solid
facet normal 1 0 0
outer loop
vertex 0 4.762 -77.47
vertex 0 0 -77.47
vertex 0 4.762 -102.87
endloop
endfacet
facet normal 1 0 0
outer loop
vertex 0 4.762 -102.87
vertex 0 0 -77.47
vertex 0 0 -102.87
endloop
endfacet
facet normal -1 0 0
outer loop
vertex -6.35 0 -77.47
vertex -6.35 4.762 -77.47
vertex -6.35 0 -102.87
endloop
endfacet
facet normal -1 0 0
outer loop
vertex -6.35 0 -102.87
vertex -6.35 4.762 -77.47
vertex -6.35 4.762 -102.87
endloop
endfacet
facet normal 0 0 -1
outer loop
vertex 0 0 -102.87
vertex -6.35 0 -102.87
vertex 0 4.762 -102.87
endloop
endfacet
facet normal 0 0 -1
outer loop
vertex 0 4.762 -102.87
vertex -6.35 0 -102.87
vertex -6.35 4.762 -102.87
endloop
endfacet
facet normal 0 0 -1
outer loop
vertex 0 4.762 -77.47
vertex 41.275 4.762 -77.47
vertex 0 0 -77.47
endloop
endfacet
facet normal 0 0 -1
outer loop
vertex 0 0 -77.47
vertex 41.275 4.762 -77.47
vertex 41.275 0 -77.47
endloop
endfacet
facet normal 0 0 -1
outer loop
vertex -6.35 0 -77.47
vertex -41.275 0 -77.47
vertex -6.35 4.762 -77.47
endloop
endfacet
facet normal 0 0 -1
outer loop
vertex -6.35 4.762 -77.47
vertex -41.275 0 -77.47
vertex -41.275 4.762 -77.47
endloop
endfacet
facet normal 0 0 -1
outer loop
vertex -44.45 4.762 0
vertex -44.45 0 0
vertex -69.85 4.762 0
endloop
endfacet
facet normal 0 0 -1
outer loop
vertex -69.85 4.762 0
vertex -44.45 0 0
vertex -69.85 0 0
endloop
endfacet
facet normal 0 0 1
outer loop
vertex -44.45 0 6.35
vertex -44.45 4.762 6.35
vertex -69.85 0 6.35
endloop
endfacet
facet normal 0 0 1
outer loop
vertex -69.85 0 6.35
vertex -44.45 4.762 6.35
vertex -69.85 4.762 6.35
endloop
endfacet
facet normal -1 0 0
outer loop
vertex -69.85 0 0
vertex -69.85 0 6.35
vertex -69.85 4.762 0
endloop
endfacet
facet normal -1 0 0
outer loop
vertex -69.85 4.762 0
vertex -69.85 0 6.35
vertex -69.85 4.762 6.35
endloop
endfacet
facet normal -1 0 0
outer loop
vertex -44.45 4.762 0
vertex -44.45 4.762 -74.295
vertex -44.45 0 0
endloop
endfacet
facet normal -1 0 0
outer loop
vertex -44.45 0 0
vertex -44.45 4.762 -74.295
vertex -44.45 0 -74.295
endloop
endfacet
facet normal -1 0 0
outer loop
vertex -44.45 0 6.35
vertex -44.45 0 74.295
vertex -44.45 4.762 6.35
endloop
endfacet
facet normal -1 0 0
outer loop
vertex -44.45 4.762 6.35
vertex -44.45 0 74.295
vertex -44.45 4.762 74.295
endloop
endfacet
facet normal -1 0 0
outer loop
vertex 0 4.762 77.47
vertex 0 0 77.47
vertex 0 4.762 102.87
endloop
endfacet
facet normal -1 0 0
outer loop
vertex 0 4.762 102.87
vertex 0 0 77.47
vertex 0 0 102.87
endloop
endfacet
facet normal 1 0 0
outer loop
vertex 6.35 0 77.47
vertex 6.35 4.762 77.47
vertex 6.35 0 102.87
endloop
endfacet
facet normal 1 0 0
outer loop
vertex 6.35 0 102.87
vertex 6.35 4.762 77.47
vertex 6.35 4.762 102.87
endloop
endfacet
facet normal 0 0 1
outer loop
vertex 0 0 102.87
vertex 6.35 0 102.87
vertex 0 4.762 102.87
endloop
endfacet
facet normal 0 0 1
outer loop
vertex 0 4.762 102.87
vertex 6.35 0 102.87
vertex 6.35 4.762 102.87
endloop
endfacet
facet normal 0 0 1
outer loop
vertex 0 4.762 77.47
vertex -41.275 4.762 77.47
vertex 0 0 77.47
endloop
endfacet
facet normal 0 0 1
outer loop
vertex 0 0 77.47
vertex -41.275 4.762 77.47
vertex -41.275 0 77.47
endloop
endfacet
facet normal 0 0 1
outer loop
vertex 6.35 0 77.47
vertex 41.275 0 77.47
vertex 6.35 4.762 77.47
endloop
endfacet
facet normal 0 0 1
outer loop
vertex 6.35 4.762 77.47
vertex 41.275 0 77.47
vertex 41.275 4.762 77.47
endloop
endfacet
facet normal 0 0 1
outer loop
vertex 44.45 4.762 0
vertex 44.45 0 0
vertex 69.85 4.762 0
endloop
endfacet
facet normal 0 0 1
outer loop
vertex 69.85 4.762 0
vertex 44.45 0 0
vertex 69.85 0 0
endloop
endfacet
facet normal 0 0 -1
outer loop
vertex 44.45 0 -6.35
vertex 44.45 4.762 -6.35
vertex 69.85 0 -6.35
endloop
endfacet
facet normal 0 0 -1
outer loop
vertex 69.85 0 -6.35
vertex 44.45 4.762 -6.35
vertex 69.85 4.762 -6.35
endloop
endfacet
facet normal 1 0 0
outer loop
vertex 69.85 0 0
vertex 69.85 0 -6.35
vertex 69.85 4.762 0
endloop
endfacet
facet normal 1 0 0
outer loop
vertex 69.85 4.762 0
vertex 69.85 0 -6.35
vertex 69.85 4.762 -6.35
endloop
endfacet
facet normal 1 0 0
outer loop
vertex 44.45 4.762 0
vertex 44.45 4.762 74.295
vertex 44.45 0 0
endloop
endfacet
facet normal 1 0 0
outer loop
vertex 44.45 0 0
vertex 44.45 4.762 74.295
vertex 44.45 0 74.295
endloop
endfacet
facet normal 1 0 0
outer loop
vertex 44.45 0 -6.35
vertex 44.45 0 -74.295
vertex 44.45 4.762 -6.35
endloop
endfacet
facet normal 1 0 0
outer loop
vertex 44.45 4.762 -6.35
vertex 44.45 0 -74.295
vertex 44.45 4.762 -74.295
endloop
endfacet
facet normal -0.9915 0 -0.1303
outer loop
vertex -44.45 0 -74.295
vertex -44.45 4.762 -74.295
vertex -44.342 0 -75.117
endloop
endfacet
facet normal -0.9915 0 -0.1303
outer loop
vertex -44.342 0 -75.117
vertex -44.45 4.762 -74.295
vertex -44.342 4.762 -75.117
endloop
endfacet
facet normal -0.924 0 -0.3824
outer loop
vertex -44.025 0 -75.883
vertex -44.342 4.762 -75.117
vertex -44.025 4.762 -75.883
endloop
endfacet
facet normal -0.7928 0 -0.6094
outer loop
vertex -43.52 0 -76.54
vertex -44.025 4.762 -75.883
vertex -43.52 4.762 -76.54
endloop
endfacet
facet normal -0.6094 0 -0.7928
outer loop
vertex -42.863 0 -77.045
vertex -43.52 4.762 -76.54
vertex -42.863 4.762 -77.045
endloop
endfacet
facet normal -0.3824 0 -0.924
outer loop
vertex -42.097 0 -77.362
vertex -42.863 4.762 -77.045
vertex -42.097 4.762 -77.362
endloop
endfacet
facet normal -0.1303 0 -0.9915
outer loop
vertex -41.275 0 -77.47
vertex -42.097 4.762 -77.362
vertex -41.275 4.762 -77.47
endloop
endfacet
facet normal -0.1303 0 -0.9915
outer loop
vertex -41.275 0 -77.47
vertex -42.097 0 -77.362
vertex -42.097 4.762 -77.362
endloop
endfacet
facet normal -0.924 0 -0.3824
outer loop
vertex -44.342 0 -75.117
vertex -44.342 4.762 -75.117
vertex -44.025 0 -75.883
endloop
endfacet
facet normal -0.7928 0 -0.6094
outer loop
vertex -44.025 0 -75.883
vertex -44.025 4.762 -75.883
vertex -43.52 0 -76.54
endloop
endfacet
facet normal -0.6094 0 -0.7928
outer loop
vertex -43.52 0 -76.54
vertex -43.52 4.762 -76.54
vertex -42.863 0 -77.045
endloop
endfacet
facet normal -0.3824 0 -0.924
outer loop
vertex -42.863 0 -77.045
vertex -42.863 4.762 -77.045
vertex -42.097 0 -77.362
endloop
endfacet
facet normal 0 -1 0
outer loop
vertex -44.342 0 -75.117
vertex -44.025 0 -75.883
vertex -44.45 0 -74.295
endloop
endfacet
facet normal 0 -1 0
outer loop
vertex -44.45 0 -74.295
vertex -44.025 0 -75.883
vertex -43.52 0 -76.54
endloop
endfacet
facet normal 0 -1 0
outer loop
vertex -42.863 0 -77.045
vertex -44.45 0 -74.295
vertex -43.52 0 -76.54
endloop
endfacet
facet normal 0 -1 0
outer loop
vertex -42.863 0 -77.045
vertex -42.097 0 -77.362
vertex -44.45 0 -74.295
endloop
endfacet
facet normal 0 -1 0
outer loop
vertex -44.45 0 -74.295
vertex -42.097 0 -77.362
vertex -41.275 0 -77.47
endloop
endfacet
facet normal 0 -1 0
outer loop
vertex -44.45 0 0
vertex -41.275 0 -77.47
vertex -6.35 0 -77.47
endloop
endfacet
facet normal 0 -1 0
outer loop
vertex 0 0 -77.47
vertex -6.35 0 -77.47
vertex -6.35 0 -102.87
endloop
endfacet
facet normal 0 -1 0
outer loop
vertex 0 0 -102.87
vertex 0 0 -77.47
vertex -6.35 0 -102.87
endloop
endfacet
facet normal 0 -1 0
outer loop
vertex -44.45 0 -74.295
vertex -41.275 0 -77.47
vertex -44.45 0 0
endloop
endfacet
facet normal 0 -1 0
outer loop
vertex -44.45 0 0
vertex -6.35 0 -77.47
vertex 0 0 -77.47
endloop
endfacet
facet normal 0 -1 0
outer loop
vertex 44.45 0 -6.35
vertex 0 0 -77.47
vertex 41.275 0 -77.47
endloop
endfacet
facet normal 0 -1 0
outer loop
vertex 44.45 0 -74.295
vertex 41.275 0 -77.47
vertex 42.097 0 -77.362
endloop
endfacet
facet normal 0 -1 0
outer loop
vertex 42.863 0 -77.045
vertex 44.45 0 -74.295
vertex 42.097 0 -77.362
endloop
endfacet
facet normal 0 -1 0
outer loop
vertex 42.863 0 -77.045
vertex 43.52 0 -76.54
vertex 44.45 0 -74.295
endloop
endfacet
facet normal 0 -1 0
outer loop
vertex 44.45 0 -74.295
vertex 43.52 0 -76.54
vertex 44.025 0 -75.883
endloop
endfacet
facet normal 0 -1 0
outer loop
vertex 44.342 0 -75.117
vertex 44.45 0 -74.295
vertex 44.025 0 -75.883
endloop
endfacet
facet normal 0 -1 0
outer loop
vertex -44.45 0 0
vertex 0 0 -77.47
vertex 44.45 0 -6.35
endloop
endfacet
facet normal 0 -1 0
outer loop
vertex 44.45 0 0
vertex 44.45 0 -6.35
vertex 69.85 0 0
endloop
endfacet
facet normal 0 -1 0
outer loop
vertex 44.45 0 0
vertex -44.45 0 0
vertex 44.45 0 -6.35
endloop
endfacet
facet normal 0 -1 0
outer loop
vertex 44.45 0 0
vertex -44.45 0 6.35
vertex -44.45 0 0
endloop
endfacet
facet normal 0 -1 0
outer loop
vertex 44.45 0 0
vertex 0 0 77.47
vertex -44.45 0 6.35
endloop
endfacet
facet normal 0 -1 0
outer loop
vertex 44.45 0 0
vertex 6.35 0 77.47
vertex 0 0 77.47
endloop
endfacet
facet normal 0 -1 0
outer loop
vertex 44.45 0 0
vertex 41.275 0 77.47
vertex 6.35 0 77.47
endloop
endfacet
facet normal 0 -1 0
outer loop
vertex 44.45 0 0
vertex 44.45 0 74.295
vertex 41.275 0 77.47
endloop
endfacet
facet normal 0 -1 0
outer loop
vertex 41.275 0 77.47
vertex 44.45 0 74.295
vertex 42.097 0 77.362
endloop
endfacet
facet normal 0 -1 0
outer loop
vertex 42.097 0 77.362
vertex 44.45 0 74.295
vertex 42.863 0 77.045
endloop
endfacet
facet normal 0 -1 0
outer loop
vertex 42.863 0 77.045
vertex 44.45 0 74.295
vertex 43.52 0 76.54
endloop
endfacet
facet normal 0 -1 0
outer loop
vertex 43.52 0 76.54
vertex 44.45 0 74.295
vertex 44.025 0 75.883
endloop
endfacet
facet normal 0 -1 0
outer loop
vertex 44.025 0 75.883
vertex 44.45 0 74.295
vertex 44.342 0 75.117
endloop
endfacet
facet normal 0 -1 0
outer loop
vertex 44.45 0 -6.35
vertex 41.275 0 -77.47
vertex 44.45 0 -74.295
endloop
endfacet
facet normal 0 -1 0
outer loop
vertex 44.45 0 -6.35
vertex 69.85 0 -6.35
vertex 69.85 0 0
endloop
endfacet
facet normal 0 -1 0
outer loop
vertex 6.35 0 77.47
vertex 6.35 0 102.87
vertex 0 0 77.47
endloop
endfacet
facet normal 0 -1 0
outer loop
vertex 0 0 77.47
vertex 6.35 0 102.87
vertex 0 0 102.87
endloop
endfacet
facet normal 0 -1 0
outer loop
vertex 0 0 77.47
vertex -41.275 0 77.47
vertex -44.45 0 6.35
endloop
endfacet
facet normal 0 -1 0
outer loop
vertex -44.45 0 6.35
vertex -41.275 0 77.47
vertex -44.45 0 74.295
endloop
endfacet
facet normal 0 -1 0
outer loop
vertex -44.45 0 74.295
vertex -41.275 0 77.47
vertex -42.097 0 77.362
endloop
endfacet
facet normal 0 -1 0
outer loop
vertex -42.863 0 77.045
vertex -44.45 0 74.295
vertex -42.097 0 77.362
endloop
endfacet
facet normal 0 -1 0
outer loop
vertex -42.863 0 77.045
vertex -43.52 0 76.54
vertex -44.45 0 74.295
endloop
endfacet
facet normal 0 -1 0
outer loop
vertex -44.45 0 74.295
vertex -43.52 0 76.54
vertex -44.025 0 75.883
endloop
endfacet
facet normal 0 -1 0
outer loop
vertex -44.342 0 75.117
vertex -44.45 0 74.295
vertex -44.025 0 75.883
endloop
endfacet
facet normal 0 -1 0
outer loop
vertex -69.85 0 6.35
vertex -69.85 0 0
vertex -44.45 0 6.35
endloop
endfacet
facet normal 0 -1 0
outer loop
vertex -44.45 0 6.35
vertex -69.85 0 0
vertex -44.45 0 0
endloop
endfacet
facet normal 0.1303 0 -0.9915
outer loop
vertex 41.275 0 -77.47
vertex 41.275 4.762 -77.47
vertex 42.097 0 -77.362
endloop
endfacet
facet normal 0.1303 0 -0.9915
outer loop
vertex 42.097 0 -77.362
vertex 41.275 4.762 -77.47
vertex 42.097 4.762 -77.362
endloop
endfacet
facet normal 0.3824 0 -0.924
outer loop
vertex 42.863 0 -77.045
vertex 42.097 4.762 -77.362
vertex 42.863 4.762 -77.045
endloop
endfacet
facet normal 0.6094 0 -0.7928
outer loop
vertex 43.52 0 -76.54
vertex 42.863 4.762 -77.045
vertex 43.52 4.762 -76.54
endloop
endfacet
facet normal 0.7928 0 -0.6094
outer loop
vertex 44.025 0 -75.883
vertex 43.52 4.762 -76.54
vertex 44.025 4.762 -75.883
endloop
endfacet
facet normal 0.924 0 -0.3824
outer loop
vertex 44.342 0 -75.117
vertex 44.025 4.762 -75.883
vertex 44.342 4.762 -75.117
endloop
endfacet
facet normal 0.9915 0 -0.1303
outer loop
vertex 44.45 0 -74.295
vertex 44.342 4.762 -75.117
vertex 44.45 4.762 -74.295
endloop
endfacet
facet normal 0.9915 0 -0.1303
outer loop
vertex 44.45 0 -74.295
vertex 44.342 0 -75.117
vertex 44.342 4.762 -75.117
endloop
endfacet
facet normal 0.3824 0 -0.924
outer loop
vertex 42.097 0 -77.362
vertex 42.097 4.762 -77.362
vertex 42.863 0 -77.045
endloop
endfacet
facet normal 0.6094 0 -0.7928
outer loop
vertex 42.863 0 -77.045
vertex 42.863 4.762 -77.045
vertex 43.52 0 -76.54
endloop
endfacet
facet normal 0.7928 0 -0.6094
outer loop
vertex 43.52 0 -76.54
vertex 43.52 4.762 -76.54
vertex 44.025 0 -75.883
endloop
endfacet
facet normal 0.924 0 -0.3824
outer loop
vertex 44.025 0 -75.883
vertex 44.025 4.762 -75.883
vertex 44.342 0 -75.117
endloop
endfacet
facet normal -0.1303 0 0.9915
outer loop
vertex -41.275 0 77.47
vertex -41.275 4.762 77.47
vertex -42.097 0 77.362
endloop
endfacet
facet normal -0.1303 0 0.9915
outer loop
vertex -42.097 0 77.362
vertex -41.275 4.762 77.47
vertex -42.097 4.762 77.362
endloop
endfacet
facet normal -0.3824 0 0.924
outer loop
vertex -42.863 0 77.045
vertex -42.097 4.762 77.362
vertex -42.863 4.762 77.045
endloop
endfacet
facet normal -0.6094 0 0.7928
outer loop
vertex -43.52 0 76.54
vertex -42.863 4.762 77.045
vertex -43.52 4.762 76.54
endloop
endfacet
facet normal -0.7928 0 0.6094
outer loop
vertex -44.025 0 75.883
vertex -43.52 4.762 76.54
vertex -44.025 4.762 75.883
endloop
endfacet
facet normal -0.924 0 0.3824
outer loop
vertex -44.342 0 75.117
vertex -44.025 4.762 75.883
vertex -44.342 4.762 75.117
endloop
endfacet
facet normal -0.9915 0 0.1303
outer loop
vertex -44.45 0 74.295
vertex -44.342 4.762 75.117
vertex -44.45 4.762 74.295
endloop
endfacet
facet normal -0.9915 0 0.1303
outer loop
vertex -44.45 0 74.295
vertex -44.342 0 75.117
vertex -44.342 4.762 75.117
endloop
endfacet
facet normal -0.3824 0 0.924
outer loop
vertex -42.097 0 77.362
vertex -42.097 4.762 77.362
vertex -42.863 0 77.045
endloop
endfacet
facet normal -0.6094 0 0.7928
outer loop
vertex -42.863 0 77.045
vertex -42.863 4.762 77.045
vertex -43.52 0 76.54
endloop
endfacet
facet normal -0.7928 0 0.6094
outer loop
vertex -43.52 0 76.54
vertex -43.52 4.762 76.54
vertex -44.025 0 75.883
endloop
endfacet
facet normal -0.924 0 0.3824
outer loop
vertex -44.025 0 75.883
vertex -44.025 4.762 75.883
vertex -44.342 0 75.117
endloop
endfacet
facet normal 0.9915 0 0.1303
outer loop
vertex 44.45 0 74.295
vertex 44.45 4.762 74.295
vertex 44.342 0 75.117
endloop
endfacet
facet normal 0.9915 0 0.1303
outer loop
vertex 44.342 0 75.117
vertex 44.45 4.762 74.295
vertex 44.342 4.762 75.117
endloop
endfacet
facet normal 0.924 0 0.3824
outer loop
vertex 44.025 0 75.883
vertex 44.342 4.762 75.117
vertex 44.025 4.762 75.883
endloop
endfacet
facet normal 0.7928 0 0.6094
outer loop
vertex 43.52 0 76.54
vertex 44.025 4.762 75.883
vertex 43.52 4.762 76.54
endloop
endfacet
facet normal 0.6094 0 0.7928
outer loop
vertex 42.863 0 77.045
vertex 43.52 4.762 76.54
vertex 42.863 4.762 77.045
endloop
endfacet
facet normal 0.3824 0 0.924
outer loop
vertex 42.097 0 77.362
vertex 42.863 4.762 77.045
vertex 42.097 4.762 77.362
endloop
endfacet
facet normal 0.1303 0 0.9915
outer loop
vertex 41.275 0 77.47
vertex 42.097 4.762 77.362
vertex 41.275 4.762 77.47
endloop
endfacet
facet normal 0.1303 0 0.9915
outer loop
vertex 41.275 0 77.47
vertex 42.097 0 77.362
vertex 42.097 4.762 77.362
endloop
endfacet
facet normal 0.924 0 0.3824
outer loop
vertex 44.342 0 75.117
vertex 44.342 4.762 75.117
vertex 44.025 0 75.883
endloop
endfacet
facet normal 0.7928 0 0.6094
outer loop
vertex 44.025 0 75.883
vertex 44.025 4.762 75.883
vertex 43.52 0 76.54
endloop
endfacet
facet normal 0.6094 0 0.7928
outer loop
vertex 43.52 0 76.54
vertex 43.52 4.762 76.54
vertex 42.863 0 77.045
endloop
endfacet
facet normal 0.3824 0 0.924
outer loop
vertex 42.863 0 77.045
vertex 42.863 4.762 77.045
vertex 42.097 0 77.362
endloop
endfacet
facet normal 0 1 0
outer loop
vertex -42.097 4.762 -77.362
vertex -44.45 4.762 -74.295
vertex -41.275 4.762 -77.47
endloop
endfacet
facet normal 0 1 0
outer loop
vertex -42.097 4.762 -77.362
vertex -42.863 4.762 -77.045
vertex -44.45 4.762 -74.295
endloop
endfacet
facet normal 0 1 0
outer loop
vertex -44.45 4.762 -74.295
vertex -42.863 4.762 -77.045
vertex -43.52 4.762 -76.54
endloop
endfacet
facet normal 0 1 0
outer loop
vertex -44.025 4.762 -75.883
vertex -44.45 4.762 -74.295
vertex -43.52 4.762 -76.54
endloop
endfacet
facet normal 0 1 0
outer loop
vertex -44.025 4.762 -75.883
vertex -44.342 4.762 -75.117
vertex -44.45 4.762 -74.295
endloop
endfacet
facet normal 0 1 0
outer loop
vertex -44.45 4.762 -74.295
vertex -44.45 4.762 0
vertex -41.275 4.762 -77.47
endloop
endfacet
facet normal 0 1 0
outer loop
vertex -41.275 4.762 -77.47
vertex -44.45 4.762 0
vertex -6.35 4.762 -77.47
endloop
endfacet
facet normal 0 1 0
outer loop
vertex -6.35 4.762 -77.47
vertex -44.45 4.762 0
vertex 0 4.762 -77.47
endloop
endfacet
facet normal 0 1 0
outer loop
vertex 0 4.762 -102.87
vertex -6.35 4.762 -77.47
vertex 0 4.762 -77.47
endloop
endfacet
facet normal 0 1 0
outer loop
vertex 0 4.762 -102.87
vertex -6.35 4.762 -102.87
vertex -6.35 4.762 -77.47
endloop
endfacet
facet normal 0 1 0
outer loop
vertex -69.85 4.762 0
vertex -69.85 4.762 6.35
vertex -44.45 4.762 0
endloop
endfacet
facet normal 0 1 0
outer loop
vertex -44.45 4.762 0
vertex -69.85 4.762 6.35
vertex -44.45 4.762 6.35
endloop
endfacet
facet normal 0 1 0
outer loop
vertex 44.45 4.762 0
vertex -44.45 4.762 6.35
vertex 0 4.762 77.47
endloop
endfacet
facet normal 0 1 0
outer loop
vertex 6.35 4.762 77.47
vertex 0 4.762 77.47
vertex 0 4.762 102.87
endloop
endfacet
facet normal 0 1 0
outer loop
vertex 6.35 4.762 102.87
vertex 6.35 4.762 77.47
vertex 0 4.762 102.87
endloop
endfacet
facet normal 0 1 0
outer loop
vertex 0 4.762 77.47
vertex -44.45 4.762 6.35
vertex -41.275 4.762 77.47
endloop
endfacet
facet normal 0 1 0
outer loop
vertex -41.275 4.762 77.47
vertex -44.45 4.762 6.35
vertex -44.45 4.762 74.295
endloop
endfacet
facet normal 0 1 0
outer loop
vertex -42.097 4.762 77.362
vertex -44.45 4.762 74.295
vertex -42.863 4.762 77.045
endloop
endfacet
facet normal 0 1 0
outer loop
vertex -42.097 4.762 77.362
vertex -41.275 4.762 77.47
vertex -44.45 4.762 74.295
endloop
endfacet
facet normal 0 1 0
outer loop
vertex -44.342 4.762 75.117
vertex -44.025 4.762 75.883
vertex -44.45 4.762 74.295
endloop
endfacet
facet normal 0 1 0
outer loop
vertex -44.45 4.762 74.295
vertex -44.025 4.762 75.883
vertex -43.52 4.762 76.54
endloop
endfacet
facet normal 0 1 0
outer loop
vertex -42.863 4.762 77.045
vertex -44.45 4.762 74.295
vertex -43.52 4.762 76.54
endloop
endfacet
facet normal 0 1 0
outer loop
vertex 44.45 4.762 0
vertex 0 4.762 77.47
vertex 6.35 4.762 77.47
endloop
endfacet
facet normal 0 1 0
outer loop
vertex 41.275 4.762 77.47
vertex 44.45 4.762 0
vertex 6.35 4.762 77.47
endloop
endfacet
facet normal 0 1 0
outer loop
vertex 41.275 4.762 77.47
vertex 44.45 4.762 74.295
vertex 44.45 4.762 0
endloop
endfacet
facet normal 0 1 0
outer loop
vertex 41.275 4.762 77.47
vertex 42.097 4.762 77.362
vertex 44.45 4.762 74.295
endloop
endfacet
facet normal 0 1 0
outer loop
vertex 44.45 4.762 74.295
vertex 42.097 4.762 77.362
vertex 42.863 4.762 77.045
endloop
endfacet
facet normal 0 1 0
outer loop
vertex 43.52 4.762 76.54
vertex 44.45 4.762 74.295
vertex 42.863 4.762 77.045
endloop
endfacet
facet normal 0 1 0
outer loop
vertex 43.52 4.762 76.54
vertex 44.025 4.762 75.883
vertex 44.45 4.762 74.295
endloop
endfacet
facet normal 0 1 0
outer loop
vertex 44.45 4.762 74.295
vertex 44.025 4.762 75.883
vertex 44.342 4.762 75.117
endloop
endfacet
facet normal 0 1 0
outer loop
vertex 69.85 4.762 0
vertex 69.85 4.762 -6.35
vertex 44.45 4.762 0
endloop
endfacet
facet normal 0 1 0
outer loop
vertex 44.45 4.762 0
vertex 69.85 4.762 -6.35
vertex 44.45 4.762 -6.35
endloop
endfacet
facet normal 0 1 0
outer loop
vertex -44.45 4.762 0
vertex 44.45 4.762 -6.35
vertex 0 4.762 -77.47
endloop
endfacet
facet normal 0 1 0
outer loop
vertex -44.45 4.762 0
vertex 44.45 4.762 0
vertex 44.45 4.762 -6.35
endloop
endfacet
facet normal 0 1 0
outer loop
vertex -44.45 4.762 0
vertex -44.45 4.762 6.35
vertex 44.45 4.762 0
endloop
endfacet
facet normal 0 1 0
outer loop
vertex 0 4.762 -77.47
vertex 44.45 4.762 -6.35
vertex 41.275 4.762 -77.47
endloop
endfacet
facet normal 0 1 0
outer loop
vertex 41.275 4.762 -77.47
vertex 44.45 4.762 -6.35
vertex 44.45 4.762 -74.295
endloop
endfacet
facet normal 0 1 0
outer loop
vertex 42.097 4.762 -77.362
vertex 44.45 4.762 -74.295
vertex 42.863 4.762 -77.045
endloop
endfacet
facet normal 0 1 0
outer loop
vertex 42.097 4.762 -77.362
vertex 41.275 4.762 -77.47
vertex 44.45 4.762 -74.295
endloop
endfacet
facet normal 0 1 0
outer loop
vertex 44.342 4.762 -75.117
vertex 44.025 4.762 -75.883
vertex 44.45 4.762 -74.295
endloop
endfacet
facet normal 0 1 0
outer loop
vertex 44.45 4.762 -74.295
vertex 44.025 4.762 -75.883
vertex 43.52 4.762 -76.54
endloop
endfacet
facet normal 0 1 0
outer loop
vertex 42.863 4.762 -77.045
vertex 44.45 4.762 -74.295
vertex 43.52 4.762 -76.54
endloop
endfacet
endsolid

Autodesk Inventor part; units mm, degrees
ref_plane "YZ Plane" through (0, 0, 0) normal (1, 0, 0) x (0, 1, 0)
ref_plane "XZ Plane" through (0, 0, 0) normal (0, 1, 0) x (-1, 0, 0)
ref_plane "XY Plane" through (0, 0, 0) normal (0, 0, 1) x (1, 0, 0)
sketch "Sketch1" plane through (0, 0, 0) normal (0, 1, 0) x (-1, 0, 0)
  line L0 (-44.45, 77.47) -> (44.45, 77.47)
  line L1 (44.45, 77.47) -> (44.45, -77.47)
  line L2 (44.45, -77.47) -> (-44.45, -77.47)
  line L3 (-44.45, -77.47) -> (-44.45, 77.47)
  line L4 (-44.45, 77.47) -> (44.45, -77.47) construction
  line L5 (44.45, 77.47) -> (-44.45, -77.47) construction
  point P0 (0, 0)
  dimension "d0" = 154.94
  dimension "d1" = 88.9
extrude "Extrusion1" add sketch "Sketch1" along normal blind 4.7625
fillet "Fillet1" radius 3.175 4 edges at (44.45, 2.3813, 77.47) (-44.45, 2.3813, 77.47) (44.45, 2.3813, -77.47) (-44.45, 2.3813, -77.47)
sketch "Sketch9" plane through (41.275, 0, -77.47) normal (0, 0, -1) x (-1, 0, 0)
  line L0 (0, 4.7625) -> (82.55, 4.7625) projected
  line L1 (41.275, 0) -> (47.625, 0)
  line L2 (47.625, 0) -> (47.625, 4.7625)
  line L3 (47.625, 4.7625) -> (41.275, 4.7625)
  line L4 (41.275, 4.7625) -> (41.275, 0)
  dimension "d40" = 6.35
sketch "Sketch10" plane through (-44.45, 0, -74.295) normal (-1, 0, 0) x (0, 0, 1)
  line L0 (0, 4.7625) -> (148.59, 4.7625) projected
  line L1 (74.295, 0) -> (80.645, 0)
  line L2 (80.645, 0) -> (80.645, 4.7625)
  line L3 (80.645, 4.7625) -> (74.295, 4.7625)
  line L4 (74.295, 4.7625) -> (74.295, 0)
  dimension "d41" = 6.35
sketch "Sketch11" plane through (44.45, 0, 74.295) normal (1, 0, 0) x (0, 0, -1)
  line L0 (148.59, 4.7625) -> (0, 4.7625) projected
  line L1 (74.295, 0) -> (80.645, 0)
  line L2 (80.645, 0) -> (80.645, 4.7625)
  line L3 (80.645, 4.7625) -> (74.295, 4.7625)
  line L4 (74.295, 4.7625) -> (74.295, 0)
  dimension "d42" = 6.35
sketch "Sketch12" plane through (-41.275, 0, 77.47) normal (0, 0, 1) x (1, 0, 0)
  line L0 (82.55, 4.7625) -> (0, 4.7625) projected
  line L1 (41.275, 0) -> (47.625, 0)
  line L2 (47.625, 0) -> (47.625, 4.7625)
  line L3 (47.625, 4.7625) -> (41.275, 4.7625)
  line L4 (41.275, 4.7625) -> (41.275, 0)
  dimension "d43" = 6.35
extrude "Extrusion8" add sketch "Sketch11" along normal blind 25.4
extrude "Extrusion9" add sketch "Sketch12" along normal blind 25.4
extrude "Extrusion10" add sketch "Sketch10" along normal blind 25.4
extrude "Extrusion11" add sketch "Sketch9" along normal blind 25.4
properties part number "iceTubeClockTop"
